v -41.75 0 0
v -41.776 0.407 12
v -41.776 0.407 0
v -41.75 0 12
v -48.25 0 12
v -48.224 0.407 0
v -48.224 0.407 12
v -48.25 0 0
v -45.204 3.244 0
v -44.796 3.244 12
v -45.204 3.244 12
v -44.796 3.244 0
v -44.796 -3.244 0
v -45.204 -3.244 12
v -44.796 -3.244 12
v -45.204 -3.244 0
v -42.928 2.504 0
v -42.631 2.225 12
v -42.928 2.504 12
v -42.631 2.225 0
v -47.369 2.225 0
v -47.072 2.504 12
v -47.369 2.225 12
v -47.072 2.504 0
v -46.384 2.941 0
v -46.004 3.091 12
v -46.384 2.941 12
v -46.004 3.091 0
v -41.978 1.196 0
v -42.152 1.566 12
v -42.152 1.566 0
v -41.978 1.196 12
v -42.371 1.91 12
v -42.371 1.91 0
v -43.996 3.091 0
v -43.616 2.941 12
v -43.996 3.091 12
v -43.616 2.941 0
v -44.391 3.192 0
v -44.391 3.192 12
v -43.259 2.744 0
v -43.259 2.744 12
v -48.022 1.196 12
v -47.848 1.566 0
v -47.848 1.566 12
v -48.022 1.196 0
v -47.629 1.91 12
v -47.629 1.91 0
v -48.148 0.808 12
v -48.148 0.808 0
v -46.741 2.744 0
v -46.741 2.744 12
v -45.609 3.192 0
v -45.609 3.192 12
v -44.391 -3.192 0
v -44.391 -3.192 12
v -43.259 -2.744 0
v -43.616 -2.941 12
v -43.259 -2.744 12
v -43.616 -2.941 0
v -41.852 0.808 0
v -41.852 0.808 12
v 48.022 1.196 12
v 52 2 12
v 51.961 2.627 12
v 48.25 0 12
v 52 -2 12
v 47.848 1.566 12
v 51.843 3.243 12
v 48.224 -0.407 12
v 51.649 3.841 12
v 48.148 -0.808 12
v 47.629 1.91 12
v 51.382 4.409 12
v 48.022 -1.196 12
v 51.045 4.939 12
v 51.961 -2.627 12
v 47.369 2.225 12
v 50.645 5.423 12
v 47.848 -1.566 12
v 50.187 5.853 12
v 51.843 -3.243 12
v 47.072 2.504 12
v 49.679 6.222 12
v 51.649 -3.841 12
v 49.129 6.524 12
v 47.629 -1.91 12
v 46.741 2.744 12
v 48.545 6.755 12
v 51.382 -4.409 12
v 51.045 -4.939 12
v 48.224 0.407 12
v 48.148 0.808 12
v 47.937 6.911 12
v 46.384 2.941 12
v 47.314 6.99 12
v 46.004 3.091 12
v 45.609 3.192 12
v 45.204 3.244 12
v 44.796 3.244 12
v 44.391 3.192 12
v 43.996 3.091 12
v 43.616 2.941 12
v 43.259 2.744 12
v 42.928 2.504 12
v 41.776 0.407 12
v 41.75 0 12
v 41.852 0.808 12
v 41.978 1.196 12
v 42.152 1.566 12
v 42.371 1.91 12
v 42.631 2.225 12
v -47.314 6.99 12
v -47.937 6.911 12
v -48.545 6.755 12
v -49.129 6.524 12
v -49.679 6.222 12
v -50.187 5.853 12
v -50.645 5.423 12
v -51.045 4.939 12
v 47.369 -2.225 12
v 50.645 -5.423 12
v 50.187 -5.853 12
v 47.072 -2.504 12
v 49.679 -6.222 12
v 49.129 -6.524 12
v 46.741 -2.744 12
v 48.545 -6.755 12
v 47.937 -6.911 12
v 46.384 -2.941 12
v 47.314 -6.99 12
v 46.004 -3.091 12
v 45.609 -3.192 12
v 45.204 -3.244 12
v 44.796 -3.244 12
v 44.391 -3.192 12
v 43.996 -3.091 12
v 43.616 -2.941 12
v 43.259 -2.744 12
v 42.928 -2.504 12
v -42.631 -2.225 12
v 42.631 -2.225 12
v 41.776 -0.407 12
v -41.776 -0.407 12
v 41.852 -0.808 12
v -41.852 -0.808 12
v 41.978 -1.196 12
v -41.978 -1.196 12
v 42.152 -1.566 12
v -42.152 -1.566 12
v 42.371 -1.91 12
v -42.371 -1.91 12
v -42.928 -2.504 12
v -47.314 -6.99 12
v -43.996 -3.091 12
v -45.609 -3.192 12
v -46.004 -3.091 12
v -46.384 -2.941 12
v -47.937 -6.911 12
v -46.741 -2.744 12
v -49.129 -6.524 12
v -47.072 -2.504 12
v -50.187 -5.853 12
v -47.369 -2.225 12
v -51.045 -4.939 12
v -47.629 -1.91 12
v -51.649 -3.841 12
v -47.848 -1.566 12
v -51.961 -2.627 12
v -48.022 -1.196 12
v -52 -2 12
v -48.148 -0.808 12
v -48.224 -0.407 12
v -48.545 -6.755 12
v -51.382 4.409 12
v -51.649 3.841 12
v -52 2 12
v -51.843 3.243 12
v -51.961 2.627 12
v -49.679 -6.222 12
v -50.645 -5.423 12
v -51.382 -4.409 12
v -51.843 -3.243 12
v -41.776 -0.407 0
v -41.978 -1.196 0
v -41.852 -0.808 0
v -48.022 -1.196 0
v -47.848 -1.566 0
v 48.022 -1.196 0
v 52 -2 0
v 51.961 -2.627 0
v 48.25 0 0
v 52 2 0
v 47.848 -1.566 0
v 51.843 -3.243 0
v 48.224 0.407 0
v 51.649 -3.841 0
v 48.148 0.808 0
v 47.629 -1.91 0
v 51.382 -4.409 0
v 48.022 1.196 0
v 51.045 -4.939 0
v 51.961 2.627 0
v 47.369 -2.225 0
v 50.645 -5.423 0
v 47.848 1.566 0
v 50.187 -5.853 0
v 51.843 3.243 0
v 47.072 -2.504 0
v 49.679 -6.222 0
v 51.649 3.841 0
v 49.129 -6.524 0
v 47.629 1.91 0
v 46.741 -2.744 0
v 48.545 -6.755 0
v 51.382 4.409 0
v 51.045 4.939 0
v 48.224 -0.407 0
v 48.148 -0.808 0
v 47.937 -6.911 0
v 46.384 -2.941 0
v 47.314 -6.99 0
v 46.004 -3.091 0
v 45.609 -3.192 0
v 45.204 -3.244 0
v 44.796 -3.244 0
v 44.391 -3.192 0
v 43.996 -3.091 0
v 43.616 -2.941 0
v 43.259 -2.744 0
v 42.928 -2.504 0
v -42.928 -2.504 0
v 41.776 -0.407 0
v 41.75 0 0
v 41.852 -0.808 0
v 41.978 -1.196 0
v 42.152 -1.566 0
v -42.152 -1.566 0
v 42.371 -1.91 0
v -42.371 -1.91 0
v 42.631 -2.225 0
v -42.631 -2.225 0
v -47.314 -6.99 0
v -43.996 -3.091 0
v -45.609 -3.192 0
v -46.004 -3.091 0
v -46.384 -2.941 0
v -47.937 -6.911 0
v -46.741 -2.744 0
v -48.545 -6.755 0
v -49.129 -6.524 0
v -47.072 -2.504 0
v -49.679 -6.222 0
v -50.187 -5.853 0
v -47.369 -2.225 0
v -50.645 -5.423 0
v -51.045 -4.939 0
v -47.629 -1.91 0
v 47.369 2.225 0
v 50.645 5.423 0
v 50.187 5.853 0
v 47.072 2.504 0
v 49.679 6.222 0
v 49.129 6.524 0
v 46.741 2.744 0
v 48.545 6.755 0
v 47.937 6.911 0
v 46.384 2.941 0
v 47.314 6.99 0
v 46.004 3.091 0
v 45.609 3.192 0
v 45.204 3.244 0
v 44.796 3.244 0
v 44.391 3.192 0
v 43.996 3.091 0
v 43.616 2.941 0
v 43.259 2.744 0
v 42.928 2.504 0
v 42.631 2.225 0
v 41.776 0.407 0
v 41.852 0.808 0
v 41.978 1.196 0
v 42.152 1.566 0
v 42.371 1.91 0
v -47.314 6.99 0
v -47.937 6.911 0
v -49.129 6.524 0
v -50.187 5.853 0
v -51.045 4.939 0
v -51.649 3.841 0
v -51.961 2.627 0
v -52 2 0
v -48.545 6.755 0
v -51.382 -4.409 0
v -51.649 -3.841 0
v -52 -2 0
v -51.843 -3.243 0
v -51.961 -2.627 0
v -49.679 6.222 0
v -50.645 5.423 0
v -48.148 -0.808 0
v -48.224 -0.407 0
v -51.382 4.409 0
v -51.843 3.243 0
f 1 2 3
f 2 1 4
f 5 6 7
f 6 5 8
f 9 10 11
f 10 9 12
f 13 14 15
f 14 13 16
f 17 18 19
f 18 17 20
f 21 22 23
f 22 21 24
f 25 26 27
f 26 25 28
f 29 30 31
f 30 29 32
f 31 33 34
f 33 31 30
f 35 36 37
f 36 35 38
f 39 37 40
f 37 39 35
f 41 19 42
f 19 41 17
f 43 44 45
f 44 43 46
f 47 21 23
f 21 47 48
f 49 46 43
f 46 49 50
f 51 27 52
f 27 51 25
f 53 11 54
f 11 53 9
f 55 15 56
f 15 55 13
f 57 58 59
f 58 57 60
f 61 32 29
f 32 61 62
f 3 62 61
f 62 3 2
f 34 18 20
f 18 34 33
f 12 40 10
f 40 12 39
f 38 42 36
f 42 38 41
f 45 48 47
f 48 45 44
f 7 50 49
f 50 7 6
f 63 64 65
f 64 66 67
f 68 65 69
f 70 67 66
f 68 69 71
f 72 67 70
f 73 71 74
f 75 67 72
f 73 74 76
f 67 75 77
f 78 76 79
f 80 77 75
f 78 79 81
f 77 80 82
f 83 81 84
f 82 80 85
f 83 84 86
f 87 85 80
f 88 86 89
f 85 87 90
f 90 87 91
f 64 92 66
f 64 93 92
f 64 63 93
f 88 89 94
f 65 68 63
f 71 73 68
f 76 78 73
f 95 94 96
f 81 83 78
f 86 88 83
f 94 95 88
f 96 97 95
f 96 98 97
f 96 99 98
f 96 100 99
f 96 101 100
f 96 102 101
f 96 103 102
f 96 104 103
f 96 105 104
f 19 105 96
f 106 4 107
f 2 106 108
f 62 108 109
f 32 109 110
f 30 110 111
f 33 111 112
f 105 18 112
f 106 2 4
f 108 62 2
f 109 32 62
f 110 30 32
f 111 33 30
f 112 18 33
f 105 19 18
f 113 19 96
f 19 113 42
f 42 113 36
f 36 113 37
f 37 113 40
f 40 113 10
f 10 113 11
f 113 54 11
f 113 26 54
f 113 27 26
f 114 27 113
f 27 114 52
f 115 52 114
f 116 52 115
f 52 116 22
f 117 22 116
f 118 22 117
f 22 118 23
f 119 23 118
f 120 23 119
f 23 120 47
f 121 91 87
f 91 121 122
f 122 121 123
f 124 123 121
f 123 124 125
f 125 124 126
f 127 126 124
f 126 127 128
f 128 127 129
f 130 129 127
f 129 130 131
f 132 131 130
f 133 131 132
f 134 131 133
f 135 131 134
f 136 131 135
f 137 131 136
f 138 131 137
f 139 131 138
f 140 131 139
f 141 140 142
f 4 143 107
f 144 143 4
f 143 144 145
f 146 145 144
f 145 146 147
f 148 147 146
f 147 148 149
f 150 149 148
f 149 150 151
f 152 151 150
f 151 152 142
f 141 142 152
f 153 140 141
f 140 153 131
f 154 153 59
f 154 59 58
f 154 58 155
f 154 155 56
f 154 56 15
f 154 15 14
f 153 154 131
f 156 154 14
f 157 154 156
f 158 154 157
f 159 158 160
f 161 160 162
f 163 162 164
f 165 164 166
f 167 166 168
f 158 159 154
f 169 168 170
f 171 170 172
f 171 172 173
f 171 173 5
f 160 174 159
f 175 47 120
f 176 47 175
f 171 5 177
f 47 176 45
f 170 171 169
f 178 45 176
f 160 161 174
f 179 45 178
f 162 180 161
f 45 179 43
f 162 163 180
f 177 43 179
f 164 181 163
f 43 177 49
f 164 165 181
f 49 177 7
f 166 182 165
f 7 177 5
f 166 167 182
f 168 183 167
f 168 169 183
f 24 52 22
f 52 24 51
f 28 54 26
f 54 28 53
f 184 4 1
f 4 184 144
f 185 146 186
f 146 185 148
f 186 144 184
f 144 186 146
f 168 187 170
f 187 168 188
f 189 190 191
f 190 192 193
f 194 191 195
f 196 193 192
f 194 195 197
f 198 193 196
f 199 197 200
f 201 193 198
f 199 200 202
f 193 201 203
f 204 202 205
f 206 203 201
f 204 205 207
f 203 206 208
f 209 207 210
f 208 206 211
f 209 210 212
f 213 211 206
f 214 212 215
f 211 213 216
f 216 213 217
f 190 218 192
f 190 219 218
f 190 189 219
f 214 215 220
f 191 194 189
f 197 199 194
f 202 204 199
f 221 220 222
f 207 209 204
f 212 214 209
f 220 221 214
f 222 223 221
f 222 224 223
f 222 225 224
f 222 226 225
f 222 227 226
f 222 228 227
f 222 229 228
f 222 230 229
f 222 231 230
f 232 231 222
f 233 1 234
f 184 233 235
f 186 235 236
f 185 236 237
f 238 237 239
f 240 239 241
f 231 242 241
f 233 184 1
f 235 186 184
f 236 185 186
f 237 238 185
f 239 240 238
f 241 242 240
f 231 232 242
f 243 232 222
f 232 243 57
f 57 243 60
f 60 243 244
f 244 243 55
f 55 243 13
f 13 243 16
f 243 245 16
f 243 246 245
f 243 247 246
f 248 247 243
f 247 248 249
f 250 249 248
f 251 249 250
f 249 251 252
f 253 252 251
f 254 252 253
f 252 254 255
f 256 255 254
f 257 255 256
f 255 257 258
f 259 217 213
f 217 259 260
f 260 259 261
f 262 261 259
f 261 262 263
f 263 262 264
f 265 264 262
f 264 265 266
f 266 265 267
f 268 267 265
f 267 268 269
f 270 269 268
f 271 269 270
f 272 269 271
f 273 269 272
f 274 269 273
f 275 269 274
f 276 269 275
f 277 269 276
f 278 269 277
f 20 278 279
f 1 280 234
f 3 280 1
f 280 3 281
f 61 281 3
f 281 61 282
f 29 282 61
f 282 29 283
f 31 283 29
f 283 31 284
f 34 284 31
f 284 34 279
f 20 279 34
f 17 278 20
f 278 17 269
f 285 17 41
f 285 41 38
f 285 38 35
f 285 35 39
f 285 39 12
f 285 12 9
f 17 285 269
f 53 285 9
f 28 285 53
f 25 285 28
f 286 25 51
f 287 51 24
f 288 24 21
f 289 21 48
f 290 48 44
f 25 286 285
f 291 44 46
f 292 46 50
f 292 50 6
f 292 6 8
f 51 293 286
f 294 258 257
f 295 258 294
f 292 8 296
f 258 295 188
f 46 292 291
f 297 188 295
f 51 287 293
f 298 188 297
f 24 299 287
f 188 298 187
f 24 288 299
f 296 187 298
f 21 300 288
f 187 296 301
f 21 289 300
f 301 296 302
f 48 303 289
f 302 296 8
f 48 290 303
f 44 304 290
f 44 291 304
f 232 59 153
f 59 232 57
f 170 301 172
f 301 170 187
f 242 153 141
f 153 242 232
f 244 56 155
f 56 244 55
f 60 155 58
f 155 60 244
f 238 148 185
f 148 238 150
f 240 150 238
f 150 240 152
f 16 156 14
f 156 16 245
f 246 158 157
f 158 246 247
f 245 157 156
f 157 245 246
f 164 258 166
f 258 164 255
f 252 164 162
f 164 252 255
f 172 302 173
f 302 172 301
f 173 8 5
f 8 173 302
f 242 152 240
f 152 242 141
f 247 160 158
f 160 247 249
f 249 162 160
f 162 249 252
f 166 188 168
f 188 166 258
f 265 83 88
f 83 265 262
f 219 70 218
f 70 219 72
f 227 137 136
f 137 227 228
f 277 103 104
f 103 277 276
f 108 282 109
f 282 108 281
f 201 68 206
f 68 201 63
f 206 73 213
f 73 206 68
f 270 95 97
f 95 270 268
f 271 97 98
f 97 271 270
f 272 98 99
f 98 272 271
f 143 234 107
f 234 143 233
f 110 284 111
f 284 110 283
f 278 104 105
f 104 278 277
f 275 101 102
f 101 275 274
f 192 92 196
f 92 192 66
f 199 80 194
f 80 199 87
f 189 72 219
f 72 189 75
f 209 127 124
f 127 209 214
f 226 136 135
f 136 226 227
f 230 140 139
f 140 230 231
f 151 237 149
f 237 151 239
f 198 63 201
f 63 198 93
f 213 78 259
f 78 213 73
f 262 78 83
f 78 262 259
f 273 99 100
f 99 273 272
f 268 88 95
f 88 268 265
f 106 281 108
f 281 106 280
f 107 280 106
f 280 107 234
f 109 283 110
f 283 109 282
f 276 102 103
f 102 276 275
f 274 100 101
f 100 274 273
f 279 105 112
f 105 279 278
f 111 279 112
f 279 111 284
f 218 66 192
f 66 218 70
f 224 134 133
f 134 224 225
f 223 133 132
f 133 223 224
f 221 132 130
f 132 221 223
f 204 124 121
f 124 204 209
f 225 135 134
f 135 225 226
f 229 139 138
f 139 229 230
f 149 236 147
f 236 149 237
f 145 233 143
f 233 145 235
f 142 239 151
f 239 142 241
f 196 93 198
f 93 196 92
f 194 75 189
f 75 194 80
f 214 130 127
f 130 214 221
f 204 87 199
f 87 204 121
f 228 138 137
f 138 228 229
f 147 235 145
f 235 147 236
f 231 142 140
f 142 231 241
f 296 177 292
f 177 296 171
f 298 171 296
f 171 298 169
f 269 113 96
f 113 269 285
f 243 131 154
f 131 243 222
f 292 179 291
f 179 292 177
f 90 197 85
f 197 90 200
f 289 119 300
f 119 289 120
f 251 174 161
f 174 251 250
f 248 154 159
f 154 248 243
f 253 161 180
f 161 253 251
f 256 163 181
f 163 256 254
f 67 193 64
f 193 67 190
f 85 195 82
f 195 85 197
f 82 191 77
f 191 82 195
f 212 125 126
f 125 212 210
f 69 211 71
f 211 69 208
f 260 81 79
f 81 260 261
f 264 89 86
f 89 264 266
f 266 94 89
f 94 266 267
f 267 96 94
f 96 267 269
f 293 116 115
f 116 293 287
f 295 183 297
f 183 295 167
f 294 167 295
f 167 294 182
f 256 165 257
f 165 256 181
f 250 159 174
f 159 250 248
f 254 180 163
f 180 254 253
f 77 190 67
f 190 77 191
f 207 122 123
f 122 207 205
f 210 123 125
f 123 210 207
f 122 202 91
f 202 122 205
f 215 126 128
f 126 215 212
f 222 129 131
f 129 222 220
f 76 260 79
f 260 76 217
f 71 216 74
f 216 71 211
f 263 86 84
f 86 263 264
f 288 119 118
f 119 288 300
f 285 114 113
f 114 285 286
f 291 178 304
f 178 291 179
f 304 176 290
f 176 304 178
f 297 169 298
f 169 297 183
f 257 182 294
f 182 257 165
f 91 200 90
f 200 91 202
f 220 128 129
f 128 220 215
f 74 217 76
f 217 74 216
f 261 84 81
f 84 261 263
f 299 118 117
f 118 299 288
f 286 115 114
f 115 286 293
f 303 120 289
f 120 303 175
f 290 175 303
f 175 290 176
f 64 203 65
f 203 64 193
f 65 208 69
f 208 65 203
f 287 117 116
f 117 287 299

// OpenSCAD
$fn = 50;


difference() {
	union() {
		hull() {
			translate(v = [-47.0000000000, 2.0000000000, 0]) {
				cylinder(h = 12, r = 5);
			}
			translate(v = [47.0000000000, 2.0000000000, 0]) {
				cylinder(h = 12, r = 5);
			}
			translate(v = [-47.0000000000, -2.0000000000, 0]) {
				cylinder(h = 12, r = 5);
			}
			translate(v = [47.0000000000, -2.0000000000, 0]) {
				cylinder(h = 12, r = 5);
			}
		}
	}
	union() {
		translate(v = [-45.0000000000, 0.0000000000, -100.0000000000]) {
			cylinder(h = 200, r = 3.2500000000);
		}
		translate(v = [-45.0000000000, 0.0000000000, -100.0000000000]) {
			cylinder(h = 200, r = 3.2500000000);
		}
		translate(v = [45.0000000000, 0.0000000000, -100.0000000000]) {
			cylinder(h = 200, r = 3.2500000000);
		}
		translate(v = [45.0000000000, 0.0000000000, -100.0000000000]) {
			cylinder(h = 200, r = 3.2500000000);
		}
	}
}
